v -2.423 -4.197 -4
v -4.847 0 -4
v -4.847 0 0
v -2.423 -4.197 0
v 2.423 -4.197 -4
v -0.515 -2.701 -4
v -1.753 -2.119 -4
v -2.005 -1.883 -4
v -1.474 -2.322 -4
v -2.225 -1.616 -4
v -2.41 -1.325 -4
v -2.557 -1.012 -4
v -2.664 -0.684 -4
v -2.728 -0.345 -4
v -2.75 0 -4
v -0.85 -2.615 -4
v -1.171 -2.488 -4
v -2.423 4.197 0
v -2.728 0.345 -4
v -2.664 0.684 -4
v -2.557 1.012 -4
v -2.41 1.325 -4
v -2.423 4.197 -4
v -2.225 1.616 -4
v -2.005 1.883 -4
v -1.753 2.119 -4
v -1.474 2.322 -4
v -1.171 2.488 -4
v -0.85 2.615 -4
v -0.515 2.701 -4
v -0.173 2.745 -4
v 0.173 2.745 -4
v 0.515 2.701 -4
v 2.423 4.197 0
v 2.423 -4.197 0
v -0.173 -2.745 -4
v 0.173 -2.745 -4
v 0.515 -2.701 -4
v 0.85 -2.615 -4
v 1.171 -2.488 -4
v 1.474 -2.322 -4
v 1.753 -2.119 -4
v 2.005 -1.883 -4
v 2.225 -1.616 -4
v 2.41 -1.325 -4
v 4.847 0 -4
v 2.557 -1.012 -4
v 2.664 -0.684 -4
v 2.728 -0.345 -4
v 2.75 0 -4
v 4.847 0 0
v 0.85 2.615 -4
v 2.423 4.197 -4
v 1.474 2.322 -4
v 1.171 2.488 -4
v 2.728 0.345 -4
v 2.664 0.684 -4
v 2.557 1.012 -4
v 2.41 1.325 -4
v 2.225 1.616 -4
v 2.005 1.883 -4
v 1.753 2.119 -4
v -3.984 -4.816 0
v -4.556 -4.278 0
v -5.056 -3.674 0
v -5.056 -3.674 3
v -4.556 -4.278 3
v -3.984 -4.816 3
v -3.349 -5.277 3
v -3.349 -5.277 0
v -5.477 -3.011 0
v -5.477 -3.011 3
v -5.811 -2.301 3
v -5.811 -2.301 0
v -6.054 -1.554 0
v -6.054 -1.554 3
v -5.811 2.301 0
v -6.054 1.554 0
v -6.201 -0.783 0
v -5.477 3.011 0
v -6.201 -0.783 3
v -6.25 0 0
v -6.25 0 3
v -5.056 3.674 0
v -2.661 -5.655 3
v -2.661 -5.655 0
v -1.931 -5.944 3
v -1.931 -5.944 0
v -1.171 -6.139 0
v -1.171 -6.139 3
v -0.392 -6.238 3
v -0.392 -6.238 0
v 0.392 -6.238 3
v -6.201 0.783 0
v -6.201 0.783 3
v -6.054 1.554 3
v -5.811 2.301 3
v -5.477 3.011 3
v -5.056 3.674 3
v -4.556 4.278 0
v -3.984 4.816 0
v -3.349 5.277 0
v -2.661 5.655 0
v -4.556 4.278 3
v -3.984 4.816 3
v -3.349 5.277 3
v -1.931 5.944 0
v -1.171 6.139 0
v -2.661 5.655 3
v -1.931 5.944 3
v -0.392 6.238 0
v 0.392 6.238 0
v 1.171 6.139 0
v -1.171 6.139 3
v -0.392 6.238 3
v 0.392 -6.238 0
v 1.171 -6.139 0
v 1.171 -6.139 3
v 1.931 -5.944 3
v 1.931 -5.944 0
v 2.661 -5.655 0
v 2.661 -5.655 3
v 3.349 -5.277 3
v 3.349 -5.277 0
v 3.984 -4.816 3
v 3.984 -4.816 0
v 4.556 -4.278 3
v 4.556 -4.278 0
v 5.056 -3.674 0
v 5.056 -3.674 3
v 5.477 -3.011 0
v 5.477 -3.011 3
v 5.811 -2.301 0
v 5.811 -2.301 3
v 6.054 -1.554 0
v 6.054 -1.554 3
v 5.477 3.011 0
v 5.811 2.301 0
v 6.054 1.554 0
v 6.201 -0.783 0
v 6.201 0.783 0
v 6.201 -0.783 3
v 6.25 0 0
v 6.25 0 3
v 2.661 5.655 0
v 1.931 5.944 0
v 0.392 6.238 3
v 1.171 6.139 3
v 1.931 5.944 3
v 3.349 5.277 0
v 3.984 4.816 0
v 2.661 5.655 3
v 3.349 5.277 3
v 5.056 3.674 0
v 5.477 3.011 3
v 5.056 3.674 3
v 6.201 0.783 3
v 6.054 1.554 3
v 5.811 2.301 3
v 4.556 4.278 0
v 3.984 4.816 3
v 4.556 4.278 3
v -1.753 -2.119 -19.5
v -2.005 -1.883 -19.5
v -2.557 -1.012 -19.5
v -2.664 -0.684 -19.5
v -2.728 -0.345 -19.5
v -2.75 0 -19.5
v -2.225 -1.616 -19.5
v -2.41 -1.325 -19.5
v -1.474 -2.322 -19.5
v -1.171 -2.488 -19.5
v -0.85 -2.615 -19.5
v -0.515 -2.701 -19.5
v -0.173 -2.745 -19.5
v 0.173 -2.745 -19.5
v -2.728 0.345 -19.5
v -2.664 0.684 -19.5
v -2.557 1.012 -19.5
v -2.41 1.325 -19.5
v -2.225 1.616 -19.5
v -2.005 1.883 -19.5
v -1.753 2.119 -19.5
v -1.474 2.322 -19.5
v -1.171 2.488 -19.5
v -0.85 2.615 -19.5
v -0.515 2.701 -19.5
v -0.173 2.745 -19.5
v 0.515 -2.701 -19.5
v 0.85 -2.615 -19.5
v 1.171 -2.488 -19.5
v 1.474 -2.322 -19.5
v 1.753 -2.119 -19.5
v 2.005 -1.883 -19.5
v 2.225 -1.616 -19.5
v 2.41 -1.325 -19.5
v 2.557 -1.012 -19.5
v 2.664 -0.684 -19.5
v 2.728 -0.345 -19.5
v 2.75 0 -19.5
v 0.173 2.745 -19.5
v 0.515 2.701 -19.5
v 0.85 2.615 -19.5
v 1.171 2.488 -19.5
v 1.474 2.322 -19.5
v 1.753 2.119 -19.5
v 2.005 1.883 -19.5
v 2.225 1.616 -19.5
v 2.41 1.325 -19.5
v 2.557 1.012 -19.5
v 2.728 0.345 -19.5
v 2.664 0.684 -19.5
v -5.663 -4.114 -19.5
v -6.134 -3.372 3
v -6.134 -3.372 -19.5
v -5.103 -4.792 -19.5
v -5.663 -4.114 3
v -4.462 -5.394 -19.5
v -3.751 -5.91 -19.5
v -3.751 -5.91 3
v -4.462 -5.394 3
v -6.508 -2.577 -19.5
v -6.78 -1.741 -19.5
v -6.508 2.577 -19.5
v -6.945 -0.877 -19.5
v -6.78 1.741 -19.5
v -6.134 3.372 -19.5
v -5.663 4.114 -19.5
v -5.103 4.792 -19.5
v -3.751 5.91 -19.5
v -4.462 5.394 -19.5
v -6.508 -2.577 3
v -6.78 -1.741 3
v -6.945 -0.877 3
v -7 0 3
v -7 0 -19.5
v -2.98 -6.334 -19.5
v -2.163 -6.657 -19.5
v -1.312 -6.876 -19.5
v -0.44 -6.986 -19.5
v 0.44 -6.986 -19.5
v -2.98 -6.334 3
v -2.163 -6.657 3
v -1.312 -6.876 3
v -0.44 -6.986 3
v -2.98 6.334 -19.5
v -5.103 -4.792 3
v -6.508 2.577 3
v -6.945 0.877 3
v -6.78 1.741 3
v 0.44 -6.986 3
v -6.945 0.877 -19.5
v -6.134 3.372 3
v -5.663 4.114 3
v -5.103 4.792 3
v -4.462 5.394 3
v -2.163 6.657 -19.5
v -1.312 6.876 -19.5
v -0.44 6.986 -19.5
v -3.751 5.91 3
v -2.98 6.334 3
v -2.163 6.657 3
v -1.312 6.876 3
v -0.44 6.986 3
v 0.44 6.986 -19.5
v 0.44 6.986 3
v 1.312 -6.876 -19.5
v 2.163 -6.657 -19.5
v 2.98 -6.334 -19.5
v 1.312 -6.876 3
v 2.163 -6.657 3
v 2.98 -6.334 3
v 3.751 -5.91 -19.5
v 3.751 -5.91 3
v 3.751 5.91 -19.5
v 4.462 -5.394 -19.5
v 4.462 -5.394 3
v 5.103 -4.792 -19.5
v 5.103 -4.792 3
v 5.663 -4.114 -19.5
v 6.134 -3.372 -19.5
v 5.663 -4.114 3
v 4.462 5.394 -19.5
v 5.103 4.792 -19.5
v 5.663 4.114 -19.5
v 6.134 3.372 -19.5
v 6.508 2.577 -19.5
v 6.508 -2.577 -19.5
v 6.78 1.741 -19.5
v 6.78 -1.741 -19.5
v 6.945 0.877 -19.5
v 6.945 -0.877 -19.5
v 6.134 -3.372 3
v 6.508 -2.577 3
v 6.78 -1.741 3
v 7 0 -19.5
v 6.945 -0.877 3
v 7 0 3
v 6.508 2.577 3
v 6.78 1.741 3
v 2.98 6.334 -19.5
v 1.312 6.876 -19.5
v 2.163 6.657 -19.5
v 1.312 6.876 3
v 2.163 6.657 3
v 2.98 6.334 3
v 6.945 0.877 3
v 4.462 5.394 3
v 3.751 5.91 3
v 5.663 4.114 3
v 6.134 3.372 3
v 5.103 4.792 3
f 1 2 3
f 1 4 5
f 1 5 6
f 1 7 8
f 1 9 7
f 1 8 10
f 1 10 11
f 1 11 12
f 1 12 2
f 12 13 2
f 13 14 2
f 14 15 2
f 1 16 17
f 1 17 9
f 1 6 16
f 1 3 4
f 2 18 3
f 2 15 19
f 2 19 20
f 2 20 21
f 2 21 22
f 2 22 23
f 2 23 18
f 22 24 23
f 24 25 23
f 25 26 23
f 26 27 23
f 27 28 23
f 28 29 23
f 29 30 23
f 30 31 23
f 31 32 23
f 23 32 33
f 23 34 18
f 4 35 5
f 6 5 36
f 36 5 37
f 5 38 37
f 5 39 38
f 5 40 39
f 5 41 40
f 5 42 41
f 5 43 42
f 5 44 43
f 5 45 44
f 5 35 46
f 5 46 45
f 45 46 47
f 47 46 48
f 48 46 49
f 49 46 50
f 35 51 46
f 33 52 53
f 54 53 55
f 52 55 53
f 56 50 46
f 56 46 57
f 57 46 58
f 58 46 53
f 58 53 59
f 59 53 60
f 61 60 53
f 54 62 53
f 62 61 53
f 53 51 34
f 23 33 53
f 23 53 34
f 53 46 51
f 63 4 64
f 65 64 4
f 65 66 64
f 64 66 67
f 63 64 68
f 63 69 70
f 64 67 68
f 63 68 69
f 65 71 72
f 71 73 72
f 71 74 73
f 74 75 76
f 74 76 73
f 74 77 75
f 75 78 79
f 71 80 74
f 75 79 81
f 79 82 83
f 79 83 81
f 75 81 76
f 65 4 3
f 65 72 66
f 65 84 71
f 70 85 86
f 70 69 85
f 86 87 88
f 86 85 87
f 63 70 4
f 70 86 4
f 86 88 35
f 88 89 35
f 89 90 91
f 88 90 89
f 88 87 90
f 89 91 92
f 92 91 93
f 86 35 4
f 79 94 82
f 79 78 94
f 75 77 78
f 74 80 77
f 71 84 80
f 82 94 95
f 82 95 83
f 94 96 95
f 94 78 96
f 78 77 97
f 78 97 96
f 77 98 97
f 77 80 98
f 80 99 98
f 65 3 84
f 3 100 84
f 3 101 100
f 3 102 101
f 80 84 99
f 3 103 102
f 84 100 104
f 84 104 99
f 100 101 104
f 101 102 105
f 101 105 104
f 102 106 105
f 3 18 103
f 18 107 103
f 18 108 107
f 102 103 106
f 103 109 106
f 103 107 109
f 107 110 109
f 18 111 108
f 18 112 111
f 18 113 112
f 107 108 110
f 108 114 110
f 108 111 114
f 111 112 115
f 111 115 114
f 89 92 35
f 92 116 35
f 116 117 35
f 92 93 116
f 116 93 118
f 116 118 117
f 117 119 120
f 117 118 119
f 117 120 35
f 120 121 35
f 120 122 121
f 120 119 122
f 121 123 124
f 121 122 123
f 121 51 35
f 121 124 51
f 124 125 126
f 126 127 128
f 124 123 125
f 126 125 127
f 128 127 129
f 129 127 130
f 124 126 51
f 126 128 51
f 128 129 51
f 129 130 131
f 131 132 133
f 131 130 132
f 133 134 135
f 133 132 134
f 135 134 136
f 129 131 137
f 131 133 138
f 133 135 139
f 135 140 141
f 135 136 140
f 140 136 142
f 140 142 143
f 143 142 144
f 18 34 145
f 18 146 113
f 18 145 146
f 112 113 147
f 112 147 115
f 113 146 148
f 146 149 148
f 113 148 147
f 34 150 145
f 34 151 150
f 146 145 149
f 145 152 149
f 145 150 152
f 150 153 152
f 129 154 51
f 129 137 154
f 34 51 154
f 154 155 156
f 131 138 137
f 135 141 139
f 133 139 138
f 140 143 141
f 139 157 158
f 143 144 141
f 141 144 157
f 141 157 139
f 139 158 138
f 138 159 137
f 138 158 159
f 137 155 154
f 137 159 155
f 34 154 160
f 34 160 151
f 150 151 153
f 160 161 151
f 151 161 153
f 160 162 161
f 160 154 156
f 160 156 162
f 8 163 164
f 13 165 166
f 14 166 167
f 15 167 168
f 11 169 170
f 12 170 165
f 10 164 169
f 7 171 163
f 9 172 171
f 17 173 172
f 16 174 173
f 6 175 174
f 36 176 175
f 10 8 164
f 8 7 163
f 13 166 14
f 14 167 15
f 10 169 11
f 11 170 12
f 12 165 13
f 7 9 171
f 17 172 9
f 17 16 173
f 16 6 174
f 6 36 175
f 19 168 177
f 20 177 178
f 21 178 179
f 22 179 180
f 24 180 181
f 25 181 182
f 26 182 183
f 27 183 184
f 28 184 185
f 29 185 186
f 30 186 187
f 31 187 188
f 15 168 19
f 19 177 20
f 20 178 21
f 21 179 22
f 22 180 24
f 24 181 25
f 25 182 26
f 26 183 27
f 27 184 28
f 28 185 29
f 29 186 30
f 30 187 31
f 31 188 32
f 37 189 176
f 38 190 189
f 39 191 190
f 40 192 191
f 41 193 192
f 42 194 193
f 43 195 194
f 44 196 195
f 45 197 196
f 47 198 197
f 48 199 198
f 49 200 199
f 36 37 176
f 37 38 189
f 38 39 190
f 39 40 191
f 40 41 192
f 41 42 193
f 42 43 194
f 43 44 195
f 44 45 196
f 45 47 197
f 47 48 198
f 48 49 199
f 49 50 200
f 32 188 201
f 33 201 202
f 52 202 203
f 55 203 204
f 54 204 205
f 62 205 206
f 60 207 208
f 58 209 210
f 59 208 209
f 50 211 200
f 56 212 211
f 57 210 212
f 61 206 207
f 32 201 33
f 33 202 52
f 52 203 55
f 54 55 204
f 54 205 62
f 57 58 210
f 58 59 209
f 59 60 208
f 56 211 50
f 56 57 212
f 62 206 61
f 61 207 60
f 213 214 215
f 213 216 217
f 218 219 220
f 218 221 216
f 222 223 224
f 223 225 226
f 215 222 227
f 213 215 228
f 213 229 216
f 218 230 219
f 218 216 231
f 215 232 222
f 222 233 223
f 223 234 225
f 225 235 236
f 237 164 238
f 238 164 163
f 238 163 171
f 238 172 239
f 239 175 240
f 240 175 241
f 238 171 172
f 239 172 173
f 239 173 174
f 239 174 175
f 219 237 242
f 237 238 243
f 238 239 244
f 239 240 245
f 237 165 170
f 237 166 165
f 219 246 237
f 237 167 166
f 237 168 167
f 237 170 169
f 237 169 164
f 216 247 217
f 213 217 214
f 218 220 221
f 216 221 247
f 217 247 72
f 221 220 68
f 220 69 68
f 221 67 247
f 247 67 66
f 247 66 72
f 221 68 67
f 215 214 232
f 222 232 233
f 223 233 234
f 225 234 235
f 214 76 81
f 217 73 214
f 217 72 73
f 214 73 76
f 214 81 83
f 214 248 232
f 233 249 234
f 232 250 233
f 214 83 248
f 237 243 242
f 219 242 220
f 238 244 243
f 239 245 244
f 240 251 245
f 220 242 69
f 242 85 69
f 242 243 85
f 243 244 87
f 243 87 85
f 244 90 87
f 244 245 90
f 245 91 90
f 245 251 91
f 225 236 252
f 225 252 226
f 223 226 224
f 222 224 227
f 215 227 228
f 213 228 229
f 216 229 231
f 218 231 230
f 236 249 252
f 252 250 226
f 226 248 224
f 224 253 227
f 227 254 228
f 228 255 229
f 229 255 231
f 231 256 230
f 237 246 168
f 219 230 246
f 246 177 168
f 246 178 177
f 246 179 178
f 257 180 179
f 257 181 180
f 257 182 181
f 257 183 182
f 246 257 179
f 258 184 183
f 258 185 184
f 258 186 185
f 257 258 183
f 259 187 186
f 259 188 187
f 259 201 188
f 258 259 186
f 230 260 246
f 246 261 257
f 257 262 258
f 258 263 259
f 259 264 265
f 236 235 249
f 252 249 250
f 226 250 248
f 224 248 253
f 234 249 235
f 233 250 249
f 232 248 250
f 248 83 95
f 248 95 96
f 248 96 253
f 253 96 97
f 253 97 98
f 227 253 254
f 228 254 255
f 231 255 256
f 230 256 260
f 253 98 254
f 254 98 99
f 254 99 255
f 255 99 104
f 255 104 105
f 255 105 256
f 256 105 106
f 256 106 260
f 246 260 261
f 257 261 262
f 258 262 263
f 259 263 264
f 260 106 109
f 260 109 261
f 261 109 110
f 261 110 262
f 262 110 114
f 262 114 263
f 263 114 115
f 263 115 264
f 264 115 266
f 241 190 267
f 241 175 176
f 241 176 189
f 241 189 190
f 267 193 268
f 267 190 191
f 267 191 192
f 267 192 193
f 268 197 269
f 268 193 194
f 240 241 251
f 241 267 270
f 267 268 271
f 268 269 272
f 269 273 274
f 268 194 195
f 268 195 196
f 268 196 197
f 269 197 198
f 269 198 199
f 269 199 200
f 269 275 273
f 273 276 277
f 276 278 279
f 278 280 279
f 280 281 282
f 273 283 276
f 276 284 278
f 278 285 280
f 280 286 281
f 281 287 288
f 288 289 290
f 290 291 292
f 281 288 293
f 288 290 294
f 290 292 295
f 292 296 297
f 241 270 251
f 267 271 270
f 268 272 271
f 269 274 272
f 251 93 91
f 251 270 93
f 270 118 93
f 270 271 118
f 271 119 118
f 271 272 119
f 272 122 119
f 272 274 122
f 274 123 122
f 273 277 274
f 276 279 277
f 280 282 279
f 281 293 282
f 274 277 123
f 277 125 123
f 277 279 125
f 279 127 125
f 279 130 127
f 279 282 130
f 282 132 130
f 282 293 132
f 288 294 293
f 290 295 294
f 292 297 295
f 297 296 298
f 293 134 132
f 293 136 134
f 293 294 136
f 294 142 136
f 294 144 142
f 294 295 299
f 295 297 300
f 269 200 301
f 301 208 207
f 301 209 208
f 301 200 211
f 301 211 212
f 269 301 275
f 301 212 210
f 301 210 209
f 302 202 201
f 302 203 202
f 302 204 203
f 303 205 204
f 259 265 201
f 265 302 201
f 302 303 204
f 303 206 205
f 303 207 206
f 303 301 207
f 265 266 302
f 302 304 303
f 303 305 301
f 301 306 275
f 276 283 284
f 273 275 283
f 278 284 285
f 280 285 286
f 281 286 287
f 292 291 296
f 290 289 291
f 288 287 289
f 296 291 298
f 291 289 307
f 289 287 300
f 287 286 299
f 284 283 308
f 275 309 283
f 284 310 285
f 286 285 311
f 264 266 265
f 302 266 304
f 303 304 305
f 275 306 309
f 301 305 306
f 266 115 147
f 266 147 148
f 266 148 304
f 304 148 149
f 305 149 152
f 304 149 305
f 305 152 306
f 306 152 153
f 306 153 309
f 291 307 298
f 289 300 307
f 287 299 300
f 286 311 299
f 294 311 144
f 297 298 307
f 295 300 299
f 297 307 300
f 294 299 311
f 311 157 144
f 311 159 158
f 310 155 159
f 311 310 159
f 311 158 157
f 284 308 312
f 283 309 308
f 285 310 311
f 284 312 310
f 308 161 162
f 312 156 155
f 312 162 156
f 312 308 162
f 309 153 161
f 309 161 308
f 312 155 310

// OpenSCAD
$fn = 50;


difference() {
	union() {
		translate(v = [0, 0, -19.5000000000]) {
			cylinder(h = 22.5000000000, r = 7.0000000000);
		}
	}
	union() {
		translate(v = [0, 0, 0]) {
			rotate(a = [0, 0, 0]) {
				difference() {
					union() {
						translate(v = [0, 0, -4]) {
							linear_extrude(height = 4) {
								polygon(points = [[4.8468000000, 0.0000000000], [2.4234000000, 4.1974519271], [-2.4234000000, 4.1974519271], [-4.8468000000, 0.0000000000], [-2.4234000000, -4.1974519271], [2.4234000000, -4.1974519271]]);
							}
						}
					}
					union();
				}
			}
		}
		#cylinder(h = 3, r = 6.2500000000);
		#translate(v = [0, 0, -100.0000000000]) {
			cylinder(h = 200, r = 2.7500000000);
		}
	}
}
